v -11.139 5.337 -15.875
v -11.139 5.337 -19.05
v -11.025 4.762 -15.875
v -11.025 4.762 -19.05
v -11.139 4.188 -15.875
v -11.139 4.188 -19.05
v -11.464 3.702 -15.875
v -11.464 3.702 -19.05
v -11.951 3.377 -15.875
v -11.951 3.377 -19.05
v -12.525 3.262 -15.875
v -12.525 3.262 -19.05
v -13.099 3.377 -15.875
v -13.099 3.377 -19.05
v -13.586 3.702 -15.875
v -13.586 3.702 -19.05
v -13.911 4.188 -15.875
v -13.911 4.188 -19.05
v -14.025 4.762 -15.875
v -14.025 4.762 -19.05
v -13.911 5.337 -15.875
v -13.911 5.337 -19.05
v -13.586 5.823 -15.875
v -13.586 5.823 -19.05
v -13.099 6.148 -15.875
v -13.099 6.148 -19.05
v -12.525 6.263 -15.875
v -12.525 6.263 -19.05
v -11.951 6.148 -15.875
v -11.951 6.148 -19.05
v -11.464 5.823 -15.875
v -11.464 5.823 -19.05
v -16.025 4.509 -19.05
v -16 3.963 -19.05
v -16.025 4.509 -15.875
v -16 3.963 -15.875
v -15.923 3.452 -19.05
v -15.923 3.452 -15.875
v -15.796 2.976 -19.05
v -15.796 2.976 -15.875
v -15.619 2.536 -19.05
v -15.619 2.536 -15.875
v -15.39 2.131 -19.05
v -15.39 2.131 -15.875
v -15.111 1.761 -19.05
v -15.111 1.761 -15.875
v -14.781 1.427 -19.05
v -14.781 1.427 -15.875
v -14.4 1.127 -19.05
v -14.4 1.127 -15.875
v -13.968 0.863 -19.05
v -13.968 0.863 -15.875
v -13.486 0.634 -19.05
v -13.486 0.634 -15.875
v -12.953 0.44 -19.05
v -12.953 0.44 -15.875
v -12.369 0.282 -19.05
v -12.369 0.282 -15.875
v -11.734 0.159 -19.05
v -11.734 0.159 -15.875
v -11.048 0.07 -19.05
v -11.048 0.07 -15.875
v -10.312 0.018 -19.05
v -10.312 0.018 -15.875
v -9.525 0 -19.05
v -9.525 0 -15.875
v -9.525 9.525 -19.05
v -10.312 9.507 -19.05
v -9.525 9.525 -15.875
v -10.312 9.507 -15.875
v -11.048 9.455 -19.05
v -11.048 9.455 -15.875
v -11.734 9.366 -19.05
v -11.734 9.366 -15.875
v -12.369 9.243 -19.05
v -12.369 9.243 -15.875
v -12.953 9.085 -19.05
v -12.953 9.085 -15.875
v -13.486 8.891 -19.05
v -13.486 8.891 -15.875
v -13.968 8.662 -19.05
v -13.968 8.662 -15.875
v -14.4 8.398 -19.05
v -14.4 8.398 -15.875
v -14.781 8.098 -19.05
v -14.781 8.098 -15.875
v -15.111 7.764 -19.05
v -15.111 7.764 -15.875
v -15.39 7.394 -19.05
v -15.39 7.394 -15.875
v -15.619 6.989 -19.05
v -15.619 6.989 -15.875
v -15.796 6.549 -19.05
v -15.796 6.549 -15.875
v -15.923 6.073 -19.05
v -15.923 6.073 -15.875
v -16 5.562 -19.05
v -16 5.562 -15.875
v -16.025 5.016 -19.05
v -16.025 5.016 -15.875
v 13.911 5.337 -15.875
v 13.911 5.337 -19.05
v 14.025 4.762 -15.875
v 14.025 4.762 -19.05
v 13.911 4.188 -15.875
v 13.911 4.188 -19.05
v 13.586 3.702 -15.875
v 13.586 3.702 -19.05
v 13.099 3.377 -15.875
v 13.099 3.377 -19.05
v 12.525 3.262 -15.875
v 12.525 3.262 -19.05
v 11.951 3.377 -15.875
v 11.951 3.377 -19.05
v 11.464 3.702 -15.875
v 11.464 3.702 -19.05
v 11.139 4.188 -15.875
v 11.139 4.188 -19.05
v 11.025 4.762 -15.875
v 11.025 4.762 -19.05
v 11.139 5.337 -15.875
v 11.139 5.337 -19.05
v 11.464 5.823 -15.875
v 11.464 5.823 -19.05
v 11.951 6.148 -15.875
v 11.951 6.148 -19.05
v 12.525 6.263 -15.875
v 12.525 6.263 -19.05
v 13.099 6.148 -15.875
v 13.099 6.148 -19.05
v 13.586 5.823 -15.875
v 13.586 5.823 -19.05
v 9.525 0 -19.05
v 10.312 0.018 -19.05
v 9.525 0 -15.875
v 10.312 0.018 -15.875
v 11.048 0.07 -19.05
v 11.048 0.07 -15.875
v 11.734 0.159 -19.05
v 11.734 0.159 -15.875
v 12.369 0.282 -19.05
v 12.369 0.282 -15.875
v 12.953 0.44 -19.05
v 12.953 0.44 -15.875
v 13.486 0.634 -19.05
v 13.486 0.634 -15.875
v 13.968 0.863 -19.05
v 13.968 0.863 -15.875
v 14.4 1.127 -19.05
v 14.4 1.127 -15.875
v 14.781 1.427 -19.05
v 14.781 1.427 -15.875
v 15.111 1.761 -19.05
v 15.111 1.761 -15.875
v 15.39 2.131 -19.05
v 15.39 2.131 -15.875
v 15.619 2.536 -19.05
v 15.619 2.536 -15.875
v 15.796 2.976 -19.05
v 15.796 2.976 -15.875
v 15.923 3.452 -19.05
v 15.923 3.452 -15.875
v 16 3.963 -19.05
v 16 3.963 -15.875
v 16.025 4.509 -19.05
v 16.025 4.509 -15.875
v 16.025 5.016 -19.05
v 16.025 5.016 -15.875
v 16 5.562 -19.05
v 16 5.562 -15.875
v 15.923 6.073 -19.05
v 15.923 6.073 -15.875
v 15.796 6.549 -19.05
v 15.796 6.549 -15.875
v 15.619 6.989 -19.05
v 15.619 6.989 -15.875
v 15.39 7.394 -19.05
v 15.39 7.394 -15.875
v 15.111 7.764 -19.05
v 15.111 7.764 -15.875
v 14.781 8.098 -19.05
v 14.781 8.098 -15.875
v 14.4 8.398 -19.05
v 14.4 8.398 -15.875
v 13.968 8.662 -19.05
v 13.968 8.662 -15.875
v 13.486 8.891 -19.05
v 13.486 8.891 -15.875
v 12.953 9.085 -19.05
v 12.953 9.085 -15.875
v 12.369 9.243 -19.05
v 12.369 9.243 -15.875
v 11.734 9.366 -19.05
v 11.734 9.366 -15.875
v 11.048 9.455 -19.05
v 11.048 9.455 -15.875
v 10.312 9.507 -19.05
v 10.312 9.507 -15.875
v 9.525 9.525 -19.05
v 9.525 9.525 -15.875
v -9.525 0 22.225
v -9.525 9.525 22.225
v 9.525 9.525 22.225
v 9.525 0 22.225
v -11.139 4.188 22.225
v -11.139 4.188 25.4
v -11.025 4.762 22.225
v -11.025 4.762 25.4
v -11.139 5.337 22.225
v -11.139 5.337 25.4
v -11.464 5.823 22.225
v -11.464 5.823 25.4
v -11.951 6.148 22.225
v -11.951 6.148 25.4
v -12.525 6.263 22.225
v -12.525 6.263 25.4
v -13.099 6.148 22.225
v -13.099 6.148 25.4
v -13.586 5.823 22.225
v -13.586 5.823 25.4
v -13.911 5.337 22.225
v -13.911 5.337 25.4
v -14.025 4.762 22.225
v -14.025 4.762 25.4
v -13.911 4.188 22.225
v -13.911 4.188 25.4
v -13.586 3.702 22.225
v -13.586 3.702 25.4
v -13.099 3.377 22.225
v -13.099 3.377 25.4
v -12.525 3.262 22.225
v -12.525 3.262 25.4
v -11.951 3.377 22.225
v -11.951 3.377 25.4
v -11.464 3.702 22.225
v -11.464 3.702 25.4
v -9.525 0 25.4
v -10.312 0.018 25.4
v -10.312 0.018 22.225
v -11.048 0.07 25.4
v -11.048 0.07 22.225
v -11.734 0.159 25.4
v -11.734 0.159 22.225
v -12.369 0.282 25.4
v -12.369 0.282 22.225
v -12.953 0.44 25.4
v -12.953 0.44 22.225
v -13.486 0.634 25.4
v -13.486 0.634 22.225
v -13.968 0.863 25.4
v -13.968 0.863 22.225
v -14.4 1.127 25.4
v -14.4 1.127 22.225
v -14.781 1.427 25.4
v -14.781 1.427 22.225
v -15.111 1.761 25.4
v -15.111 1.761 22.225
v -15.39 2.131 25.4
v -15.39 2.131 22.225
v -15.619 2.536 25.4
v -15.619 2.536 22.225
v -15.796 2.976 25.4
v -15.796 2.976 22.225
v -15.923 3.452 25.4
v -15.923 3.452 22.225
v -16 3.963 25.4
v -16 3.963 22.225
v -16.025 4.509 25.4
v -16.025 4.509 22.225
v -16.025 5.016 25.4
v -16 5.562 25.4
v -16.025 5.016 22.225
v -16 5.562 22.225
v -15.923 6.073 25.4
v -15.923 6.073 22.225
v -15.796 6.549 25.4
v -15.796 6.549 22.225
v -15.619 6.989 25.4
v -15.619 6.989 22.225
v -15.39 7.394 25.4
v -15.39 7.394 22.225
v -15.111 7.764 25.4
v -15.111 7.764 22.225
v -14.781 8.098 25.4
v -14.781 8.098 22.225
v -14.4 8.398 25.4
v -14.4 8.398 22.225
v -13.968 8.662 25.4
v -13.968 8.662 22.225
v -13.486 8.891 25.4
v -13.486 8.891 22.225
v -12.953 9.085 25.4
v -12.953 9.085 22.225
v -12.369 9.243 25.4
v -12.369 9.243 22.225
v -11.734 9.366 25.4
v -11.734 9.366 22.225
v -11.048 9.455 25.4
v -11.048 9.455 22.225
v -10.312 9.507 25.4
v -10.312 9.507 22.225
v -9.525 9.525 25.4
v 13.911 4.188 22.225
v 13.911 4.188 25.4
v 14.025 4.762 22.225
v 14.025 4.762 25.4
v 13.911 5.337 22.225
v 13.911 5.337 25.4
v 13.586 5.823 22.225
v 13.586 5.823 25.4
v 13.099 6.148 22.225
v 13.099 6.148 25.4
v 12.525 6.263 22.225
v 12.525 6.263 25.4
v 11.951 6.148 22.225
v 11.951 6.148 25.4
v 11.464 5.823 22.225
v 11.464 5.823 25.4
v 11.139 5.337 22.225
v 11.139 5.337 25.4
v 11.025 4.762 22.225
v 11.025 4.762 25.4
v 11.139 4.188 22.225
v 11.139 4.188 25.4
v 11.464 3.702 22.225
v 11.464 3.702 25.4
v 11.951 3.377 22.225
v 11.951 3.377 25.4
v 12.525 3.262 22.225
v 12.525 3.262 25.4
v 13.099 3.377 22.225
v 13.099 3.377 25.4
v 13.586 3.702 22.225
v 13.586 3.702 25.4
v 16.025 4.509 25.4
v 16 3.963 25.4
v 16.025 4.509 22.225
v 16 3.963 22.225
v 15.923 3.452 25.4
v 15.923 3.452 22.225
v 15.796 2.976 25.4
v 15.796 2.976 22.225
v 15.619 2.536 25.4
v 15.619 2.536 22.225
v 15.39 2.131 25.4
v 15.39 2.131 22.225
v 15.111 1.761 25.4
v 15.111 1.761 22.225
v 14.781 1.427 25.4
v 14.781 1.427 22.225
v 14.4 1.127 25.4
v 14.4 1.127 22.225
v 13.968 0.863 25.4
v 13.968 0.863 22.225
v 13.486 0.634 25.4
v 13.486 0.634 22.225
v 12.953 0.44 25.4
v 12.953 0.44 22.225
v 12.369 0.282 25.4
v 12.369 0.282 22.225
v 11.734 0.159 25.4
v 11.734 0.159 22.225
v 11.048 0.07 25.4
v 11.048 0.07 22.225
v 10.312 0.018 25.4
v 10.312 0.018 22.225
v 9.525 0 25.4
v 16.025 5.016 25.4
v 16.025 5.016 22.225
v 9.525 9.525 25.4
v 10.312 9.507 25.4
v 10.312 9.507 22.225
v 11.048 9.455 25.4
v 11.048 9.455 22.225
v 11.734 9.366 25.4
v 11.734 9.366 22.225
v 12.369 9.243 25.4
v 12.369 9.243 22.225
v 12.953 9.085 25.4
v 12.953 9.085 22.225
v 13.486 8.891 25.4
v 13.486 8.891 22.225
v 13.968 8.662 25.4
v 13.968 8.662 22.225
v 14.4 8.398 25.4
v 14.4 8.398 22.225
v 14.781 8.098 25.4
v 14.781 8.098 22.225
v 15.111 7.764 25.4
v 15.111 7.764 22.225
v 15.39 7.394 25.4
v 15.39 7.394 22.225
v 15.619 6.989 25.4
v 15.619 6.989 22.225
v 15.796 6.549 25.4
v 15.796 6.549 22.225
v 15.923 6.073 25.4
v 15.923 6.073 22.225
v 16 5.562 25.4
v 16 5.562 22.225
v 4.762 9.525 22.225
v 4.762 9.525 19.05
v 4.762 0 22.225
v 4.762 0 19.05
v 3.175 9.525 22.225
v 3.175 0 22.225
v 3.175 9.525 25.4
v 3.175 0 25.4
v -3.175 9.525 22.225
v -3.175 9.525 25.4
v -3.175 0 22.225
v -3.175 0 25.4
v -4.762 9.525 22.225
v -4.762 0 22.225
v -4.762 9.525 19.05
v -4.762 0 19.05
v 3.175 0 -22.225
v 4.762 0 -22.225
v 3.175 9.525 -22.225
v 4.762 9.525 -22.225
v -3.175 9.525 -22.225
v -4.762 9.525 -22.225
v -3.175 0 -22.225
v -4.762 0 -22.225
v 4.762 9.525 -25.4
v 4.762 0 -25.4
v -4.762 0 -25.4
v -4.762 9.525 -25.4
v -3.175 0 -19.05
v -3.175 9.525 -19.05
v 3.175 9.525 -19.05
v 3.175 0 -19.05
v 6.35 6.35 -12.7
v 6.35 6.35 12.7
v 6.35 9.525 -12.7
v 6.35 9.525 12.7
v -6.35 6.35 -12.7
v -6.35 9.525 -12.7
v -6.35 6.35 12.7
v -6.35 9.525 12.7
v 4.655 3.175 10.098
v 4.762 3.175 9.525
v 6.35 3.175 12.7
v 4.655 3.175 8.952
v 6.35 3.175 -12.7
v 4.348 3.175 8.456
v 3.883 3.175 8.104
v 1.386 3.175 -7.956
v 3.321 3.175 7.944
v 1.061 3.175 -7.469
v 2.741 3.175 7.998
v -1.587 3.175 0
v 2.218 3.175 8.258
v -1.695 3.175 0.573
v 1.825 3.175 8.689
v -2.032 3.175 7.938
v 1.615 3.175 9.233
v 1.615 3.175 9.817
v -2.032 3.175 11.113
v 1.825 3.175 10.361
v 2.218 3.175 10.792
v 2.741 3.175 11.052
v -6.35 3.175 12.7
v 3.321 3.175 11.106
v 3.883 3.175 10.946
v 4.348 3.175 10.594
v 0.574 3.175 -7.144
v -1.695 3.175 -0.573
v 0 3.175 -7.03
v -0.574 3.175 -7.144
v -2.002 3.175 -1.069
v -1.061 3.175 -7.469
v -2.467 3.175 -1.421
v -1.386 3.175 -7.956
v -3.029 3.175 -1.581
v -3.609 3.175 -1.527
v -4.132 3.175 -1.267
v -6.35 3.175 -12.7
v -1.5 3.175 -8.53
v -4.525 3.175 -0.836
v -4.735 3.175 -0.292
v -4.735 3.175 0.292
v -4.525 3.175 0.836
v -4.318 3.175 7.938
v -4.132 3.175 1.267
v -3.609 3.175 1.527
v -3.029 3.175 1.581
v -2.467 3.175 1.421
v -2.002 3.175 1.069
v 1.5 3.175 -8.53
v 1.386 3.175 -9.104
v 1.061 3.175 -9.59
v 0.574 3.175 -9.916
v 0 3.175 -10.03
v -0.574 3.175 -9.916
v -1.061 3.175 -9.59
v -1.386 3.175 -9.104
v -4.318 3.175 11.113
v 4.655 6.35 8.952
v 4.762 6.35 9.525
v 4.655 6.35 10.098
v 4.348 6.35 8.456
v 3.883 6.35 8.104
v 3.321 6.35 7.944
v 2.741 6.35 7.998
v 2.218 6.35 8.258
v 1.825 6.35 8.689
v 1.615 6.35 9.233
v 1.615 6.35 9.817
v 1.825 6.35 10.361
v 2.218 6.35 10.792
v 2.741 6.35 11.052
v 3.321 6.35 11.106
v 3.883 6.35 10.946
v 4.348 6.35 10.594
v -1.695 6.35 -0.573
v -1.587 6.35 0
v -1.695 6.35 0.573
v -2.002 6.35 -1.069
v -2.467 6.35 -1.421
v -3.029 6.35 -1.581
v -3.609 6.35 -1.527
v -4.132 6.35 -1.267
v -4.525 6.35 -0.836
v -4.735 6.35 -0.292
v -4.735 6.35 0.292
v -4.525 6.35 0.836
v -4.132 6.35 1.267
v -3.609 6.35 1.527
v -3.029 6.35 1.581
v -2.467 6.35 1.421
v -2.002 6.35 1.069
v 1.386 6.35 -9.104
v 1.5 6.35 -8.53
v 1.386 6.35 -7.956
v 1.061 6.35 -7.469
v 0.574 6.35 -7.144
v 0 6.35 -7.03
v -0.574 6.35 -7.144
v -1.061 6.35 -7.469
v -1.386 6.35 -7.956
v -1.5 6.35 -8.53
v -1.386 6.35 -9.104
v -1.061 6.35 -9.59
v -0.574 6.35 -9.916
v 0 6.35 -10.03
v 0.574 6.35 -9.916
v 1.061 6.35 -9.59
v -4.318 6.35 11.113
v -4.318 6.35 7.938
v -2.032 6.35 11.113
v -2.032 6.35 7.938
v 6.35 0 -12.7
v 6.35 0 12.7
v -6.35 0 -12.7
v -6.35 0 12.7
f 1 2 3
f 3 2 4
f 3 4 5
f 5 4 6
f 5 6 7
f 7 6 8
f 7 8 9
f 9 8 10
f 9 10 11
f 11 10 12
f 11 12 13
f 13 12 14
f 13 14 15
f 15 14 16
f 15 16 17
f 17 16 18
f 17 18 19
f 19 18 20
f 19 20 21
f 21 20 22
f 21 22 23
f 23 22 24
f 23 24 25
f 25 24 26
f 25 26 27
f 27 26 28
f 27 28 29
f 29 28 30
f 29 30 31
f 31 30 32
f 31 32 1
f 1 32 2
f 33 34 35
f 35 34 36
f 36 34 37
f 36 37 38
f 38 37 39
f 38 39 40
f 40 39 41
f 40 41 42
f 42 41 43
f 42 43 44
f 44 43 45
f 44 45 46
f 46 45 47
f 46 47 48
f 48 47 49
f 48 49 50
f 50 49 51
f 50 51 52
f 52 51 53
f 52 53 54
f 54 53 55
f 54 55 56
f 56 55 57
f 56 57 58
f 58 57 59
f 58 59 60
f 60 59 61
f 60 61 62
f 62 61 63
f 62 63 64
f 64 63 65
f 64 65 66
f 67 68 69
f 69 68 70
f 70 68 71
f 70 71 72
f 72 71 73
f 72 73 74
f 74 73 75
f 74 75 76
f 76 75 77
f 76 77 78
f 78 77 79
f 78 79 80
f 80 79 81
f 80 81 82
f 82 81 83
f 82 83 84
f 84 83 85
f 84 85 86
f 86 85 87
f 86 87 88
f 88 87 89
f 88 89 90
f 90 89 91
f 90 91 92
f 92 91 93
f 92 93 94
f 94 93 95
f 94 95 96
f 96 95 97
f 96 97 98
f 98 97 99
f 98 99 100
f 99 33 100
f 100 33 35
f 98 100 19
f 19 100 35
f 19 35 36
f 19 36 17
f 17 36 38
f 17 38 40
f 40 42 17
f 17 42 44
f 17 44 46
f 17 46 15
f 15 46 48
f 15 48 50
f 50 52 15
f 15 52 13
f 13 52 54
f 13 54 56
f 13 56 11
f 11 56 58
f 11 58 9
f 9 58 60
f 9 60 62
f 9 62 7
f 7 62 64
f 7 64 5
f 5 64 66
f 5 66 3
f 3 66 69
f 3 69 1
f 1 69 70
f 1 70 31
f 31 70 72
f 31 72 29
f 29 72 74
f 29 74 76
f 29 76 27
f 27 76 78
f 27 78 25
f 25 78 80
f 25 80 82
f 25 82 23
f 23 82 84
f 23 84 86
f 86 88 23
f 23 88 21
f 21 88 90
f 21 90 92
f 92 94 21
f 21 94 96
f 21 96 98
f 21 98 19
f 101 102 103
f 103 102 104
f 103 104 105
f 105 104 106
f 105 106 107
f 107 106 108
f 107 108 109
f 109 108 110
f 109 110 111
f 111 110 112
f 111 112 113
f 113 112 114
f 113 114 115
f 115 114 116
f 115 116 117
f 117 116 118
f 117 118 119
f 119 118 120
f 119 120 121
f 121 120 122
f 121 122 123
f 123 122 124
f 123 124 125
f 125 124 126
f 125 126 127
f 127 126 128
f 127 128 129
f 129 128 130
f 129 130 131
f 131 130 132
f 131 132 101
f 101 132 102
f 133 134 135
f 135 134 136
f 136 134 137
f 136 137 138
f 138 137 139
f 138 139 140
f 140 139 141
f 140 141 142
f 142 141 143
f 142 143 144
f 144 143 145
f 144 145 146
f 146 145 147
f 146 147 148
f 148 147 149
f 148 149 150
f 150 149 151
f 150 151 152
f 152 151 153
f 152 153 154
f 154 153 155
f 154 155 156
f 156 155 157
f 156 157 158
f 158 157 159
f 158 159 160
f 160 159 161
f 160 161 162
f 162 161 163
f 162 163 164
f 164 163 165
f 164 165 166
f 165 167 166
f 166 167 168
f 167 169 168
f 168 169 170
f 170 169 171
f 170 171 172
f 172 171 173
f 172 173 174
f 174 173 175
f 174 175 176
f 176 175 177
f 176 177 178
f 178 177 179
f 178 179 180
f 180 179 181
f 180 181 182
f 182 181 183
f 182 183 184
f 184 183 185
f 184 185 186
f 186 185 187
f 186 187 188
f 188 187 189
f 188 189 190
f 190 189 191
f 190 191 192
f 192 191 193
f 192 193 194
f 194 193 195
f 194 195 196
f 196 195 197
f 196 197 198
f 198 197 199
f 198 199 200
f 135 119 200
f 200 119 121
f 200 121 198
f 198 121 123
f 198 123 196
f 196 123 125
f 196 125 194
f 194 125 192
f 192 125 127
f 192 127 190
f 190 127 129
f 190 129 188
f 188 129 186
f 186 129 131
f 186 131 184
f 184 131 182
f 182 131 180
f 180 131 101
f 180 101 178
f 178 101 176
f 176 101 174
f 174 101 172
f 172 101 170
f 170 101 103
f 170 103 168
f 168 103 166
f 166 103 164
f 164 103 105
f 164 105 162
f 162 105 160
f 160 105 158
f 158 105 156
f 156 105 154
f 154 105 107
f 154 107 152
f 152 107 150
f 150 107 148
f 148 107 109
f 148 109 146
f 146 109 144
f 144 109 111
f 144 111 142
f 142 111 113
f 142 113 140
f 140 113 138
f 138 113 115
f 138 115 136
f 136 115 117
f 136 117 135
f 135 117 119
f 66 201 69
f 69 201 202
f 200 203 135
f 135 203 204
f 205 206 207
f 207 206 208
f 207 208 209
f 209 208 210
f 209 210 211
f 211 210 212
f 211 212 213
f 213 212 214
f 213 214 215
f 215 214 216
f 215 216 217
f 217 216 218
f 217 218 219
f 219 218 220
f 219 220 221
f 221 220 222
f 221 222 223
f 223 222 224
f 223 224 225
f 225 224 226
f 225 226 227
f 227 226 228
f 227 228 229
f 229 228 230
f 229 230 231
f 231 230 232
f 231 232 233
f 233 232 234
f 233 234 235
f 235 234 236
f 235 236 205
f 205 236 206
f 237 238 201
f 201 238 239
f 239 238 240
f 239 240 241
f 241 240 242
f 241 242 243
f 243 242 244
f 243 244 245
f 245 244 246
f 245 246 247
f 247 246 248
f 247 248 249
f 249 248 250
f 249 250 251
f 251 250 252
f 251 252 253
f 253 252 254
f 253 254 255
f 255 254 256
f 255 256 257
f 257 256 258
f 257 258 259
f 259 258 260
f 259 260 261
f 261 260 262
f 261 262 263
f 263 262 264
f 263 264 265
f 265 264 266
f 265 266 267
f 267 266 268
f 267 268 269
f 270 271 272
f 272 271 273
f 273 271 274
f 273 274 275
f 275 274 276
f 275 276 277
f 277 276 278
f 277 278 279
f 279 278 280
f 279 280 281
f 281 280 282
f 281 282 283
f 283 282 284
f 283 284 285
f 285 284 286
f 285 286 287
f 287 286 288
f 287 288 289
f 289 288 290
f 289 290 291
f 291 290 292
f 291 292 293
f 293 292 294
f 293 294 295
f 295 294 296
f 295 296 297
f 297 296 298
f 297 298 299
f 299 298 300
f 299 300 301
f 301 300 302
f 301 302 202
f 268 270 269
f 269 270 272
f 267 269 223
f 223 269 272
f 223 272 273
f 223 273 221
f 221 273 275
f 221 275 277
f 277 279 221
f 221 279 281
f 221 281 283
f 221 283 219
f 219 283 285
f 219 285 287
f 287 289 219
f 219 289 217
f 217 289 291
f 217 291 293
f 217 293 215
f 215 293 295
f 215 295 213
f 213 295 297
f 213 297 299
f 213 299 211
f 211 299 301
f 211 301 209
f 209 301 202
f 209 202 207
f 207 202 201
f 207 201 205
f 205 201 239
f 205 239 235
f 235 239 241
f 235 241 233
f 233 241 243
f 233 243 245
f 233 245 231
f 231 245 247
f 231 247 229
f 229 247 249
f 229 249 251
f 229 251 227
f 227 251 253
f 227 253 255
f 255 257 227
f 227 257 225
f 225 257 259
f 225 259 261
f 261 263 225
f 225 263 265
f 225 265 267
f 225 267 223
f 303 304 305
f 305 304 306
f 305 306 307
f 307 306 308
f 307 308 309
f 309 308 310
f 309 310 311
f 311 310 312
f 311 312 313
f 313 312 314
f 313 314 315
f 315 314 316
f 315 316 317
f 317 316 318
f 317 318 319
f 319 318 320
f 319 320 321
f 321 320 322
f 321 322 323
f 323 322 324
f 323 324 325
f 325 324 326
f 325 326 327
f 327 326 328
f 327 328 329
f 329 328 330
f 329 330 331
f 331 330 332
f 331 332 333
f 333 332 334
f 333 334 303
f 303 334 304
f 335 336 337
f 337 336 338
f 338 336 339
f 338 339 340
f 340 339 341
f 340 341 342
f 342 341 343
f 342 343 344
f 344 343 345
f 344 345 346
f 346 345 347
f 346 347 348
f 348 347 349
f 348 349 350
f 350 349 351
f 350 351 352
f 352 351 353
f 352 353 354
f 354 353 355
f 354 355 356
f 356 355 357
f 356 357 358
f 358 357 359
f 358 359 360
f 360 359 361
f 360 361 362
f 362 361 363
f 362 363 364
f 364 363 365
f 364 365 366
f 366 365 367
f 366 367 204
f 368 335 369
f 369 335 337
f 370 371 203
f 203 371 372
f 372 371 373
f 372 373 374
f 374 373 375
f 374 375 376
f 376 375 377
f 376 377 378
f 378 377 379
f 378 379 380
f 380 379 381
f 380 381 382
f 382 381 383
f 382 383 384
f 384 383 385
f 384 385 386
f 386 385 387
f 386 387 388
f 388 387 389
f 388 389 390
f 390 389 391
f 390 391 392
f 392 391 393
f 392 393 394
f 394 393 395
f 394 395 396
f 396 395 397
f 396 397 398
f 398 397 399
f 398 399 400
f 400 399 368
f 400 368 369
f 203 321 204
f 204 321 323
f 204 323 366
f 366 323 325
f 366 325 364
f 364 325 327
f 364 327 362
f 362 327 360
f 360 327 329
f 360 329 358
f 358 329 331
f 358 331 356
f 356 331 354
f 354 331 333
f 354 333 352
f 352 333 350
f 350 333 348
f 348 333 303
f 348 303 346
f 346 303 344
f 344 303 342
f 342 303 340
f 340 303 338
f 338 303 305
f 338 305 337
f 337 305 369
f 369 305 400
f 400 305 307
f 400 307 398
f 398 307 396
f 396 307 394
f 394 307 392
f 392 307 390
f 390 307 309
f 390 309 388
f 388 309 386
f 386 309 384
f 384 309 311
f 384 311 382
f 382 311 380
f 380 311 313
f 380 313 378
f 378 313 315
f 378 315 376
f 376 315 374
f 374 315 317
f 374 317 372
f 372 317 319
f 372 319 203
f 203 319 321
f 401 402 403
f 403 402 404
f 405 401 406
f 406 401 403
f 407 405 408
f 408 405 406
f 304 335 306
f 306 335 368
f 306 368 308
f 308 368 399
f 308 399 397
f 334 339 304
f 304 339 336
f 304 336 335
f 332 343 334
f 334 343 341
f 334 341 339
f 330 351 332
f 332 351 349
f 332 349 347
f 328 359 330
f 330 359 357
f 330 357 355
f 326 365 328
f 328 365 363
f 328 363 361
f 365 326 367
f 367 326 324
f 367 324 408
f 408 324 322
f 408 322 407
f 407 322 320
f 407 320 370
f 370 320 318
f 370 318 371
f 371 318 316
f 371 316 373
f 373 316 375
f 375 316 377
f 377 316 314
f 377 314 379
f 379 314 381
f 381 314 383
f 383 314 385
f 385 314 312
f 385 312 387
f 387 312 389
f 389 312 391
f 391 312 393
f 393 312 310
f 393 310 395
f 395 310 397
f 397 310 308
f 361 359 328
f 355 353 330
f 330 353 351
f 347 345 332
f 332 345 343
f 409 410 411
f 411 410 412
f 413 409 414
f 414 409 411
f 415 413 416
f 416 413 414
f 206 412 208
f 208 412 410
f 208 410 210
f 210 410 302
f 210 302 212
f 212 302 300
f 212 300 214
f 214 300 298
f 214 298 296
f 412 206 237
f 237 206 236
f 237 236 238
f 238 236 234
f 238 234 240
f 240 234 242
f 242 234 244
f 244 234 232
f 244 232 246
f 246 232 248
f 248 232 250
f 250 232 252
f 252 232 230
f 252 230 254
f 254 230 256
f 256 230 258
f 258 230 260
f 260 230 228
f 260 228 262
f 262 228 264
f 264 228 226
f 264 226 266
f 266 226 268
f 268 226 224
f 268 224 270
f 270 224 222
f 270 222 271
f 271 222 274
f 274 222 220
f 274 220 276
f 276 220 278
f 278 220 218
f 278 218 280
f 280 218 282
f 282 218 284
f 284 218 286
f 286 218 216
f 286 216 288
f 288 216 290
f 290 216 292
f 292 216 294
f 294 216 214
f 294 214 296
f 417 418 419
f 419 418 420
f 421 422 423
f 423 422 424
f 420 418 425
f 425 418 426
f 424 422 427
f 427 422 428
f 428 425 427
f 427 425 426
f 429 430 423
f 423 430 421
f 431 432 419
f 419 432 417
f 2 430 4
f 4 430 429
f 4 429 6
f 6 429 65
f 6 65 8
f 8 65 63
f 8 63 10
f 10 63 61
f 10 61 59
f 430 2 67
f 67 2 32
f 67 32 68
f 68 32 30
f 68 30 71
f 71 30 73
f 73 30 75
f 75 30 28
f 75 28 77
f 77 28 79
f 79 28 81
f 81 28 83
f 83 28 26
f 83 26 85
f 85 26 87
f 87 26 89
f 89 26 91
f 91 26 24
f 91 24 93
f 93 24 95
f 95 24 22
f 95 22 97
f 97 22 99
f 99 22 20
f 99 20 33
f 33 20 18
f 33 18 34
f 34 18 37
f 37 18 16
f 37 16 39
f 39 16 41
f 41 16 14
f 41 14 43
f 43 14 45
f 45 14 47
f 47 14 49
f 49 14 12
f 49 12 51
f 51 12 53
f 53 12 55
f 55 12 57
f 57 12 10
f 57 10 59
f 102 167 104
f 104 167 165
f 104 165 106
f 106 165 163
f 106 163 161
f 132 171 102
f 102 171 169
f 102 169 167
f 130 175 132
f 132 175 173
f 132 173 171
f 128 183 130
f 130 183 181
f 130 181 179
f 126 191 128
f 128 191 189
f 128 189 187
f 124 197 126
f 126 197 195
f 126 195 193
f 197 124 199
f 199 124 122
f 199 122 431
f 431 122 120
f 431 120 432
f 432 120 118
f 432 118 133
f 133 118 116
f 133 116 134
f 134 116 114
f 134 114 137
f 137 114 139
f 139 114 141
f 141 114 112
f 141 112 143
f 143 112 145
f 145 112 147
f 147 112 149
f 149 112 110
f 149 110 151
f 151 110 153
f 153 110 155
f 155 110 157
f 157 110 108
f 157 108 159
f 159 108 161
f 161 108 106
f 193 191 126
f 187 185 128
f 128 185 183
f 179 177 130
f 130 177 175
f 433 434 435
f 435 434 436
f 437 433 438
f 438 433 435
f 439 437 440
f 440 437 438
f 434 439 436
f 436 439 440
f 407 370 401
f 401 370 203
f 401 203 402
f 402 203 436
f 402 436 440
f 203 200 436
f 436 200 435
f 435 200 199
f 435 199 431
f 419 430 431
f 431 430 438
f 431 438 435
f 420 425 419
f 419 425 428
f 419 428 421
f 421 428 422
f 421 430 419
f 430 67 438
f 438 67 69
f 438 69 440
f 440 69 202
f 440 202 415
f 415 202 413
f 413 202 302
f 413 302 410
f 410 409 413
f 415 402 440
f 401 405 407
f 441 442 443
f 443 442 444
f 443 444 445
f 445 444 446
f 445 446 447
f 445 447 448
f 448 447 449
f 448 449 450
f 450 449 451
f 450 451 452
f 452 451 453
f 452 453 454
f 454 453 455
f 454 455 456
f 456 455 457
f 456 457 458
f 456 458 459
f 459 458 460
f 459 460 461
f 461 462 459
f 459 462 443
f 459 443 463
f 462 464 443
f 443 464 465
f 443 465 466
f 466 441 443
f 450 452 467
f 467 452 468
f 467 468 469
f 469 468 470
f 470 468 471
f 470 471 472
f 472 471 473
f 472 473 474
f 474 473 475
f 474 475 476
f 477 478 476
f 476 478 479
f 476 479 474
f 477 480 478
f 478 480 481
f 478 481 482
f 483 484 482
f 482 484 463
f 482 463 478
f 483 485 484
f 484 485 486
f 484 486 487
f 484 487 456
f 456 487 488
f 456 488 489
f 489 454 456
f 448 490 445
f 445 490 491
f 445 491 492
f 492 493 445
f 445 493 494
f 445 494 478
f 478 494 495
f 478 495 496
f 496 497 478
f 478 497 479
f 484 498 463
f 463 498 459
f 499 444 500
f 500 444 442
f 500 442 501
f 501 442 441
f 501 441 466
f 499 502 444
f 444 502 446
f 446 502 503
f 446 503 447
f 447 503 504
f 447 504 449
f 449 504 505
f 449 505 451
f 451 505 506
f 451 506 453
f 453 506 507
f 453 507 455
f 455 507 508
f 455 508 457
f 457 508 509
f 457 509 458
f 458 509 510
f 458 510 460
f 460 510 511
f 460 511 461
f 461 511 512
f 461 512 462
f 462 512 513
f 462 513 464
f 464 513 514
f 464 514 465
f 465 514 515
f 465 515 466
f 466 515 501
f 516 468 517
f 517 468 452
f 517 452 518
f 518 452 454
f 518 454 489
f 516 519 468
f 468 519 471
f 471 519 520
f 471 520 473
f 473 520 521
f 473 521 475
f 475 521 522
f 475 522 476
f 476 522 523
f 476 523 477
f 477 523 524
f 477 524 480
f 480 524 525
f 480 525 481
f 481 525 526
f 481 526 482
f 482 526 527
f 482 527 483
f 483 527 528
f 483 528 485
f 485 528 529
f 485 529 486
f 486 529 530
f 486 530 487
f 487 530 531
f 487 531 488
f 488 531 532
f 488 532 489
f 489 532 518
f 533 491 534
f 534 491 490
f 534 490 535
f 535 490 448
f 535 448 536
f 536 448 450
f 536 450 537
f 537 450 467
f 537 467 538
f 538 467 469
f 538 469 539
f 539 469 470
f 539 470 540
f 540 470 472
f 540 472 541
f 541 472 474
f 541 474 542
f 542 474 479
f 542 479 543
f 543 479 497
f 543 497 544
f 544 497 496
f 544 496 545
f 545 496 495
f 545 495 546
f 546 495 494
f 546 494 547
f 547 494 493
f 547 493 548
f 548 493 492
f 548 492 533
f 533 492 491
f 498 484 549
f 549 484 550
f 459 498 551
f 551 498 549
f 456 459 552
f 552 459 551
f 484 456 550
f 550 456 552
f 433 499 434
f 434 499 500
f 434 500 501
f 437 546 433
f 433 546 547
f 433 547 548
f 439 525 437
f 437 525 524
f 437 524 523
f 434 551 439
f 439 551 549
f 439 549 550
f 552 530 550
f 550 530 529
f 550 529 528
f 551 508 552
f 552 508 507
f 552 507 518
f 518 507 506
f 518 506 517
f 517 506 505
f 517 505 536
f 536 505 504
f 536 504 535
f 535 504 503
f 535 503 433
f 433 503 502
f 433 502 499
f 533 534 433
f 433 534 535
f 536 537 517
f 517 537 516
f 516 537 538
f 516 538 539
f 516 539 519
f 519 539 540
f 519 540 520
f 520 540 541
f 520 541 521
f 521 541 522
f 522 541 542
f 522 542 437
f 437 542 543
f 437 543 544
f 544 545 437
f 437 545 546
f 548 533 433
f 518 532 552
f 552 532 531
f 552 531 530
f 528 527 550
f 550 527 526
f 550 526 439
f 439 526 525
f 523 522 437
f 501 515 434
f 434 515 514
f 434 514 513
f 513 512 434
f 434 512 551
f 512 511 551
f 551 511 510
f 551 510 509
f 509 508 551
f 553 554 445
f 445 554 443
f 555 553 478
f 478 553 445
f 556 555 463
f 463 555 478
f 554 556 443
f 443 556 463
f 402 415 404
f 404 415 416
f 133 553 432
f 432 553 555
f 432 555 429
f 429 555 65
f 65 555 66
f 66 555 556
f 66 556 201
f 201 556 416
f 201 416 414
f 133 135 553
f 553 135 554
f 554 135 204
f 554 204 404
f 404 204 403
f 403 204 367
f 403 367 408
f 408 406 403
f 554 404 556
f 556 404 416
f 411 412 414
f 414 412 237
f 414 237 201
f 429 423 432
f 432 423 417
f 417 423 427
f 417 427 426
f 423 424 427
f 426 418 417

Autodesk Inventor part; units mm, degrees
ref_plane "YZ Plane" through (0, 0, 0) normal (1, 0, 0) x (0, 1, 0)
ref_plane "XZ Plane" through (0, 0, 0) normal (0, 1, 0) x (-1, 0, 0)
sketch "Sketch1" plane through (0, 0, 0) normal (0, 1, 0) x (-1, 0, 0)
  line L0 (-6.35, 12.7) -> (6.35, 12.7)
  line L1 (6.35, 12.7) -> (6.35, -12.7)
  line L2 (6.35, -12.7) -> (-6.35, -12.7)
  line L3 (-6.35, -12.7) -> (-6.35, 12.7)
  line L4 (-6.35, 12.7) -> (6.35, -12.7) construction
  line L5 (6.35, 12.7) -> (-6.35, -12.7) construction
  line L6 (-9.525, 19.05) -> (9.525, 19.05)
  line L7 (9.525, 19.05) -> (9.525, -19.05)
  line L8 (9.525, -19.05) -> (-9.525, -19.05)
  line L9 (-9.525, -19.05) -> (-9.525, 19.05)
  line L10 (-9.525, 19.05) -> (9.525, -19.05) construction
  line L11 (9.525, 19.05) -> (-9.525, -19.05) construction
  line L12 (6.35, 12.7) -> (6.35, 15.875)
  line L13 (6.35, 15.875) -> (9.525, 15.875)
  point P0 (0, 0)
  dimension "d0" = 12.7
  dimension "d1" = 25.4
extrude "Extrusion1" add sketch "Sketch1" along normal blind 3.175
sketch "Sketch2" plane through (0, 3.175, 0) normal (0, 1, 0) x (1, 0, 0)
  circle A0 centre (3.175, -9.525) radius 1.5875
  circle A1 centre (-3.175, 0) radius 1.5875
  circle A2 centre (0, 8.5298) radius 1.5
  line L0 (-4.318, -7.9375) -> (-2.032, -7.9375)
  line L1 (-2.032, -7.9375) -> (-2.032, -11.1125)
  line L2 (-2.032, -11.1125) -> (-4.318, -11.1125)
  line L3 (-4.318, -11.1125) -> (-4.318, -7.9375)
  line L4 (-4.318, -7.9375) -> (-2.032, -11.1125) construction
  line L5 (-2.032, -7.9375) -> (-4.318, -11.1125) construction
  line L6 (-9.525, 19.05) -> (-9.525, -19.05) projected
  line L7 (9.525, -19.05) -> (-9.525, -19.05)
  line L8 (-9.525, -19.05) -> (-9.525, 19.05)
  line L9 (-9.525, 19.05) -> (9.525, 19.05)
  line L10 (9.525, 19.05) -> (9.525, -19.05)
  line L11 (9.525, -19.05) -> (-9.525, 19.05) construction
  line L12 (-9.525, -19.05) -> (9.525, 19.05) construction
  point P0 (0, 0)
  point P1 (0, 0)
  dimension "d4" = 3.175
  dimension "d5" = 3.175
  dimension "d6" = 3
  dimension "d8" = 3.175
extrude "Extrusion2" add sketch "Sketch2" along normal blind 3.175
sketch "Sketch3" plane through (0, 6.35, 0) normal (0, 1, 0) x (1, 0, 0)
  line L0 (-9.525, 19.05) -> (-9.525, -19.05) projected
  line L1 (9.525, -19.05) -> (-9.525, -19.05)
  line L2 (-9.525, -19.05) -> (-9.525, 19.05)
  line L3 (-9.525, 19.05) -> (9.525, 19.05)
  line L4 (9.525, 19.05) -> (9.525, -19.05)
  line L5 (9.525, -19.05) -> (-9.525, 19.05) construction
  line L6 (-9.525, -19.05) -> (9.525, 19.05) construction
  line L7 (6.35, -12.7) -> (-6.35, -12.7)
  line L8 (-6.35, -12.7) -> (-6.35, 12.7)
  line L9 (-6.35, 12.7) -> (6.35, 12.7)
  line L10 (6.35, 12.7) -> (6.35, -12.7)
  line L11 (6.35, -12.7) -> (-6.35, 12.7) construction
  line L12 (-6.35, -12.7) -> (6.35, 12.7) construction
  point P0 (0, 0)
extrude "Extrusion3" add sketch "Sketch3" along normal blind 3.175
sketch "Sketch4" plane through (9.525, 0, -19.05) normal (0, 0, -1) x (-1, 0, 0)
  line L0 (12.7, 0) -> (6.35, 0)
  line L1 (6.35, 0) -> (6.35, 9.525)
  line L2 (6.35, 9.525) -> (12.7, 9.525)
  line L3 (12.7, 9.525) -> (12.7, 0)
  line L4 (12.7, 0) -> (6.35, 9.525) construction
  line L5 (6.35, 0) -> (12.7, 9.525) construction
  point P0 (9.525, 0)
  point P1 (9.525, 4.7625)
extrude "Extrusion4" add sketch "Sketch4" along normal blind 3.175
sketch "Sketch5" plane through (9.525, 0, -22.225) normal (0, 0, -1) x (-1, 0, 0)
  line L0 (4.7625, 0) -> (14.2875, 0)
  line L1 (14.2875, 0) -> (14.2875, 9.525)
  line L2 (14.2875, 9.525) -> (4.7625, 9.525)
  line L3 (4.7625, 9.525) -> (4.7625, 0)
  line L4 (4.7625, 0) -> (14.2875, 9.525) construction
  line L5 (14.2875, 0) -> (4.7625, 9.525) construction
  point P0 (9.525, 0)
  point P1 (9.525, 4.7625)
extrude "Extrusion5" add sketch "Sketch5" along normal blind 3.175
sketch "Sketch6" plane through (0, 9.525, 0) normal (0, 1, 0) x (1, 0, 0)
  line L0 (9.525, -19.05) -> (-9.525, -19.05)
  line L1 (-9.525, -19.05) -> (-9.525, -25.4)
  line L2 (9.525, -25.4) -> (9.525, -19.05)
  line L3 (3.175, -22.225) -> (4.7625, -22.225)
  line L4 (-4.7625, 25.4) -> (4.7625, 25.4) projected
  line L5 (4.7625, 22.225) -> (4.7625, 25.4) projected
  line L6 (-4.7625, -22.225) -> (-3.175, -22.225)
  line L7 (-3.175, -22.225) -> (-3.175, -25.4)
  line L8 (-4.7625, -22.225) -> (-4.7625, -19.05)
  line L9 (4.7625, -22.225) -> (4.7625, -19.05)
  line L10 (3.175, -22.225) -> (3.175, -25.4)
  line L11 (-9.525, -25.4) -> (-3.175, -25.4)
  line L12 (3.175, -25.4) -> (9.525, -25.4)
  point P0 (0, 0)
extrude "Extrusion6" add sketch "Sketch6" against normal blind 9.525
sketch "Sketch7" plane through (3.175, 9.525, 25.4) normal (0, 0, 1) x (1, 0, 0)
  circle A0 centre (9.35, -4.7625) radius 1.5
  line L0 (12.85, -5.0165) -> (12.85, -4.5085)
  line L1 (12.85, -4.5085) -> (12.85, 0) construction
  line L2 (12.85, 0) -> (6.35, 0) construction
  spline S0 degree 2 poles (12.85, -4.5085) (12.85, 0) (6.35, 0) knots 1 1 1 2 2 2
  line L3 (12.85, -5.0165) -> (12.85, -9.525) construction
  line L4 (12.85, -9.525) -> (6.35, -9.525) construction
  spline S1 degree 2 poles (12.85, -5.0165) (12.85, -9.525) (6.35, -9.525) knots 1 1 1 2 2 2
  line L5 (-3.175, -9.525) -> (-3.175, 0)
  line L6 (-7.9375, 0) -> (1.5875, 0) projected
  line L7 (6.35, 0) -> (6.35, -9.525) projected
  line L8 (6.35, -9.525) -> (6.35, 0)
  circle A1 centre (-15.7, -4.7625) radius 1.5
  line L9 (-19.2, -5.0165) -> (-19.2, -4.5085)
  line L10 (-19.2, -4.5085) -> (-19.2, 0) construction
  line L11 (-19.2, 0) -> (-12.7, 0) construction
  spline S2 degree 2 poles (-19.2, -4.5085) (-19.2, 0) (-12.7, 0) knots 1 1 1 2 2 2
  line L12 (-19.2, -5.0165) -> (-19.2, -9.525) construction
  line L13 (-19.2, -9.525) -> (-12.7, -9.525) construction
  spline S3 degree 2 poles (-19.2, -5.0165) (-19.2, -9.525) (-12.7, -9.525) knots 1 1 1 2 2 2
  line L14 (-12.7, 0) -> (-12.7, -9.525)
  line L15 (-12.7, -9.525) -> (-12.7, 0)
  point P0 (10.85, -4.7625)
  point P1 (-17.2, -4.7625)
  dimension "d25" = 3
extrude "Extrusion7" add sketch "Sketch7" against normal blind 3.175
ref_plane "Work Plane5" through (-4.7625, 0, 3.175) normal (0, 0, 1) x (1, 0, 0)
mirror "Mirror1" about plane through (-4.7625, 0, 3.175) normal (0, 0, 1) of "Extrusion7"
properties part number "SlottedCarrierFull"
